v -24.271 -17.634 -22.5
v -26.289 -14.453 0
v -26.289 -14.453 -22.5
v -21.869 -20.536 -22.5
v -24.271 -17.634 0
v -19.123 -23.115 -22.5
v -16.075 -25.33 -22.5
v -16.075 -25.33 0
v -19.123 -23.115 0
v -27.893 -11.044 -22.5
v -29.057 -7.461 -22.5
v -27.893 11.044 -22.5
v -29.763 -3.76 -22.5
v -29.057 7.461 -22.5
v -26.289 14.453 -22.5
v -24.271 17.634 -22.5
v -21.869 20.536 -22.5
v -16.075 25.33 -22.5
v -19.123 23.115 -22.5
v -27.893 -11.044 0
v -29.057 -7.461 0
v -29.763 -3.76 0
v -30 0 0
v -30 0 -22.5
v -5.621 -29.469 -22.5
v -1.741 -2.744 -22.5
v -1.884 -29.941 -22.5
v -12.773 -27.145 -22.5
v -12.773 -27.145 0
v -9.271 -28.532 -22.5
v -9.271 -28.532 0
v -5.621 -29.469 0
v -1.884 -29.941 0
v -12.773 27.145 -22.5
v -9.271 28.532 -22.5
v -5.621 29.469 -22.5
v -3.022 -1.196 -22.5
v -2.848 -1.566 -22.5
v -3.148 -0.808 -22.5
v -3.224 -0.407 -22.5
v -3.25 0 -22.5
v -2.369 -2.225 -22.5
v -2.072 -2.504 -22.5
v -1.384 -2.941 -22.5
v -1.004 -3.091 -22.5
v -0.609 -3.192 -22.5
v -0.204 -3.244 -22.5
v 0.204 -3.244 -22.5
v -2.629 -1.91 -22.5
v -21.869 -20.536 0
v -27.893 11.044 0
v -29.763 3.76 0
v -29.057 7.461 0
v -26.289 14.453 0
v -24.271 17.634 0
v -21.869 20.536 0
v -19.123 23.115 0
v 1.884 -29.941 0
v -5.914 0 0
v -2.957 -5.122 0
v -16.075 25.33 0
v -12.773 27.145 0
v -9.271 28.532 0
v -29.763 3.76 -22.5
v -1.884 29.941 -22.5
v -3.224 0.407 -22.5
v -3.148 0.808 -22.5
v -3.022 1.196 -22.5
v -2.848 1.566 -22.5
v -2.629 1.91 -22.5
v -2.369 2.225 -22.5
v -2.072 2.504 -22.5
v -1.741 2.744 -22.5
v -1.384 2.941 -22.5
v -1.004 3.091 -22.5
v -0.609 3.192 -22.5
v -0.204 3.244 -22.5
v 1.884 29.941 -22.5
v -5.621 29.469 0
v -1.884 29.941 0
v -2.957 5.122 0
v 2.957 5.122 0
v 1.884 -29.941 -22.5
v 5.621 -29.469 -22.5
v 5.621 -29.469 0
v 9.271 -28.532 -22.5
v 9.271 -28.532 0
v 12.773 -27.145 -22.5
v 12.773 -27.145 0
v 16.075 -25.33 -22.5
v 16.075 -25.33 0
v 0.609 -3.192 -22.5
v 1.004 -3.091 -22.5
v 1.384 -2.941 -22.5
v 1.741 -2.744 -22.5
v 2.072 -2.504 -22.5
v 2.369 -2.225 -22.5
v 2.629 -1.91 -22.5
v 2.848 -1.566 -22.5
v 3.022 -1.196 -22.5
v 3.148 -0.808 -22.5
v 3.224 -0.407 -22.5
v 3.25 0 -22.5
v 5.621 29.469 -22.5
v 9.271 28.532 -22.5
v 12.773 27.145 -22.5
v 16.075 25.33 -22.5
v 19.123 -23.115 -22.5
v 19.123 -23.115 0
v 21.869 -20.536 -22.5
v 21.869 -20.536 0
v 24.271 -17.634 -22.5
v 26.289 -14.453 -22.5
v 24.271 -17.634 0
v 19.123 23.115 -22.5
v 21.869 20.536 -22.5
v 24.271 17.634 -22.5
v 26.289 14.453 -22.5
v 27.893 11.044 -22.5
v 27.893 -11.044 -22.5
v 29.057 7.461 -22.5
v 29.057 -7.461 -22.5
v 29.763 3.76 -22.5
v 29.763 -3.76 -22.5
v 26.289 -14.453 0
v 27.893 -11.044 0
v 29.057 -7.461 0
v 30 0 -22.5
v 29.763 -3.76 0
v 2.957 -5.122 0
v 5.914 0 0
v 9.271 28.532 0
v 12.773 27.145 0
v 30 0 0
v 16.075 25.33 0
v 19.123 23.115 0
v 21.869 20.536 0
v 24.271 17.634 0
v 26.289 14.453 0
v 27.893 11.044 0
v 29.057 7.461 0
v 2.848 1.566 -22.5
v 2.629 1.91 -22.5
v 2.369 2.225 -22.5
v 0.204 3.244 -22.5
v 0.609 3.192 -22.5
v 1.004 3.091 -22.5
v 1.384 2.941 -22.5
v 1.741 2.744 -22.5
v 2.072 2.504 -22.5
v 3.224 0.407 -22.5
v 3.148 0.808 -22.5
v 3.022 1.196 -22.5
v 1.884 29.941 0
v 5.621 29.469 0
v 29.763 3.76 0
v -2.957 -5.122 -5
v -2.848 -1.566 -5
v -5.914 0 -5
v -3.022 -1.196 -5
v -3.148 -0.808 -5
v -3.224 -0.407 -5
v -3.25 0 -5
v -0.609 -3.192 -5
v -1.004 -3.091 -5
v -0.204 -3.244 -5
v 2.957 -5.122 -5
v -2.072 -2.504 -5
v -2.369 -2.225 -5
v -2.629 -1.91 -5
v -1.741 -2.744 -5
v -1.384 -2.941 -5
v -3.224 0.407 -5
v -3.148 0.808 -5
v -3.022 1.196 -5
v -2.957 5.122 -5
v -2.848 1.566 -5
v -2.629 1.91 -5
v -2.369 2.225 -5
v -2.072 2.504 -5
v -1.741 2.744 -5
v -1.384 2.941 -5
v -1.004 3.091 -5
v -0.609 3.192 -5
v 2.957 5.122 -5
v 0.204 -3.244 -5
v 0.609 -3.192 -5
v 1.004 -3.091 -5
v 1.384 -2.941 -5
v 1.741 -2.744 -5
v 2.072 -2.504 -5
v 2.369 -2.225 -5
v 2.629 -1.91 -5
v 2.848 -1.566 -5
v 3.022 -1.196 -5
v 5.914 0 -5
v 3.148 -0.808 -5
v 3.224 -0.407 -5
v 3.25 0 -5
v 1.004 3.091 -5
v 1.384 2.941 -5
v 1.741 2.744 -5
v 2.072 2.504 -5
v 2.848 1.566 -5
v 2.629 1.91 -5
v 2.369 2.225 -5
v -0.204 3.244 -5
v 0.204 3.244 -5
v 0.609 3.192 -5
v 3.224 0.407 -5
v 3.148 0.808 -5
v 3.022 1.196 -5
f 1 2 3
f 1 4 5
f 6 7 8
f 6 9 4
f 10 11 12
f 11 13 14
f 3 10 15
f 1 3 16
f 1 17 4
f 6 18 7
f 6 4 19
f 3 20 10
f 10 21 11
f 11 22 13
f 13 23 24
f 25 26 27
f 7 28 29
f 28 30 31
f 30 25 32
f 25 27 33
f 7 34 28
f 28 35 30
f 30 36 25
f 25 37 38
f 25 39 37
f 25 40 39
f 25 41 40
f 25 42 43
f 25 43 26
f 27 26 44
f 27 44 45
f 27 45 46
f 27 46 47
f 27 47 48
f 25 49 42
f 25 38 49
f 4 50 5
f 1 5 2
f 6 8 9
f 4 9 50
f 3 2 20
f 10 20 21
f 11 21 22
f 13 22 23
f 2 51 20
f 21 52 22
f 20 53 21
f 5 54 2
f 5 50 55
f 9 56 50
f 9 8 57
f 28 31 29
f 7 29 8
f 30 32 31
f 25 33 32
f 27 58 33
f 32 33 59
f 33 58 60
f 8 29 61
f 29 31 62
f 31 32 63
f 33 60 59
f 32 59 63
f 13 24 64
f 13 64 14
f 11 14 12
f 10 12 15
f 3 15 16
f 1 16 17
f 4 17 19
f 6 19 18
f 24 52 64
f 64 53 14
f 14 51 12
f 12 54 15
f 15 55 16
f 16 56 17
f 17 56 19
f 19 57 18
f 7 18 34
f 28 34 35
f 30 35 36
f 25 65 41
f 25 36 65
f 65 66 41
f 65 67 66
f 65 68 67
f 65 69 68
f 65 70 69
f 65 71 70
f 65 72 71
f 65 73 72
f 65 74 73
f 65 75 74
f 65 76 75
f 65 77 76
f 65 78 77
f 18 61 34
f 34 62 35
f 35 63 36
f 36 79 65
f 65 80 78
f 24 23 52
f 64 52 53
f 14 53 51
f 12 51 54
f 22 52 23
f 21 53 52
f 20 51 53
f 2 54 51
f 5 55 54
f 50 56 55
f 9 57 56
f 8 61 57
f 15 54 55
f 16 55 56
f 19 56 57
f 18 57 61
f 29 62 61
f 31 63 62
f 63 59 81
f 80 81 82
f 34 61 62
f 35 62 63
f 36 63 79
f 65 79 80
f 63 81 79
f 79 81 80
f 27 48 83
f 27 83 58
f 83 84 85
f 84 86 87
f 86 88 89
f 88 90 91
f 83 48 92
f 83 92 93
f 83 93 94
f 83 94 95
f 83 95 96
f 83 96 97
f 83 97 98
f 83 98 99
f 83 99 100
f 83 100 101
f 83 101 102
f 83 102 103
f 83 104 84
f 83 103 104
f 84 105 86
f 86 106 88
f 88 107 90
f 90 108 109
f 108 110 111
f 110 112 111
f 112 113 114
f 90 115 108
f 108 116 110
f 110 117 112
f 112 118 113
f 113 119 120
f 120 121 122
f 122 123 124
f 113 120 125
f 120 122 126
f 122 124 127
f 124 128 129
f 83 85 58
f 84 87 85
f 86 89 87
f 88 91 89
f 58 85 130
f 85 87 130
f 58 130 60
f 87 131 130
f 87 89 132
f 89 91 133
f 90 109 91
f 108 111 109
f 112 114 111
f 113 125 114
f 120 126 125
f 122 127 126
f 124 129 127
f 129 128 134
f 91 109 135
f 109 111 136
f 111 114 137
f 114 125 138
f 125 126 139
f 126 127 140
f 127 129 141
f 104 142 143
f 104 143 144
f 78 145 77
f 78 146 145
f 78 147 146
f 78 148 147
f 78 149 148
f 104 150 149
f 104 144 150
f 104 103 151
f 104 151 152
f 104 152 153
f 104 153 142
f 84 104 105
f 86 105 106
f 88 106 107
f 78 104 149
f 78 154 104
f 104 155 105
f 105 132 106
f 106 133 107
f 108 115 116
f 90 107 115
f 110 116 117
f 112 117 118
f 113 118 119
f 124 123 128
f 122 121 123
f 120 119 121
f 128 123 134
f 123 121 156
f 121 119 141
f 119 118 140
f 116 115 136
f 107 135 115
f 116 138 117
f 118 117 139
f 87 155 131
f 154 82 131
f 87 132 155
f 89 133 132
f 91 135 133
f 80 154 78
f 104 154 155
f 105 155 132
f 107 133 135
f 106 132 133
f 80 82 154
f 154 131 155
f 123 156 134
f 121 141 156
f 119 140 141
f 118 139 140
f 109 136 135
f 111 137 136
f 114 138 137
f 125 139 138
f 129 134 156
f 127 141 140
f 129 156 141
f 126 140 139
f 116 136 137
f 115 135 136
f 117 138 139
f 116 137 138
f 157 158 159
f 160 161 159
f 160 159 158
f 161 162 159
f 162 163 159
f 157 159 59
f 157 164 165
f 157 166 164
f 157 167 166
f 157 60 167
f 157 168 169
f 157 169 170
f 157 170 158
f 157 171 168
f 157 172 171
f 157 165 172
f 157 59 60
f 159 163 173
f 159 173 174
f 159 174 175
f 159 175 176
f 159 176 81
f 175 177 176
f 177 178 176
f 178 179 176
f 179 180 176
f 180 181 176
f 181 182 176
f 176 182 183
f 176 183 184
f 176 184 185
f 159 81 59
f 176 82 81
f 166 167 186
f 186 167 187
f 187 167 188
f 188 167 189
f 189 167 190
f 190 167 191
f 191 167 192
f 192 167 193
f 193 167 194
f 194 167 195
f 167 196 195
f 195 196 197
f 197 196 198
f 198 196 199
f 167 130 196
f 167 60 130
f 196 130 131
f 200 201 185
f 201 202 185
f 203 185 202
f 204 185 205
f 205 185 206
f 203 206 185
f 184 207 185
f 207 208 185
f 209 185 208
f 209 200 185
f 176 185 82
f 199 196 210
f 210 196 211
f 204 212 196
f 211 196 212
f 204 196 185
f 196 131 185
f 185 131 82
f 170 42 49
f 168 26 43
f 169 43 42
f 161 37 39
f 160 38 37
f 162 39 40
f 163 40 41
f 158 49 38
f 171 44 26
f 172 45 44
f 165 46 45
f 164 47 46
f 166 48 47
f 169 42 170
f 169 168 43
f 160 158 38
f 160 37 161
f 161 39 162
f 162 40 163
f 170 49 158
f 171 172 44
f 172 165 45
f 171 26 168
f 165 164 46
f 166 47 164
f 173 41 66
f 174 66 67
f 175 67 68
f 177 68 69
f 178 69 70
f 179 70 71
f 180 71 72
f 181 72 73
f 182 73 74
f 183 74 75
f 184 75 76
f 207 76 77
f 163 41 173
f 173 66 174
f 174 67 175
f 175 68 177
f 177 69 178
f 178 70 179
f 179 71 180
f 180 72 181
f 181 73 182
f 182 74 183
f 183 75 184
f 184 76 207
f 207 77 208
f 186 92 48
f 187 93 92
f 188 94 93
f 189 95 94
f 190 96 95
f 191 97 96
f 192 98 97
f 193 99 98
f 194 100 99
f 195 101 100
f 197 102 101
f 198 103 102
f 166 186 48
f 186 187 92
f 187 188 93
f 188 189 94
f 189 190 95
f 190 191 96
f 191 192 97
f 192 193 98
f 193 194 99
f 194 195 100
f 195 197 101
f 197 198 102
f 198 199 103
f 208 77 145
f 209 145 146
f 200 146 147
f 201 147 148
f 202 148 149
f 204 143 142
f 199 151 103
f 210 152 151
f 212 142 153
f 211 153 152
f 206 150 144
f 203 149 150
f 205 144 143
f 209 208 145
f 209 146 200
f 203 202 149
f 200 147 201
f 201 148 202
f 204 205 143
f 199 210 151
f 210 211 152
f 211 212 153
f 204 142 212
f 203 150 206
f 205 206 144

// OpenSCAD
$fn = 50;


difference() {
	union() {
		translate(v = [0, 0, -22.5000000000]) {
			cylinder(h = 22.5000000000, r = 30.0000000000);
		}
		#translate(v = [0, 0, -24.0000000000]) {
			cylinder(h = 24, r = 2.8750000000);
		}
	}
	union() {
		translate(v = [0, 0, 0]) {
			rotate(a = [0, 0, 0]) {
				difference() {
					union() {
						translate(v = [0, 0, -5]) {
							linear_extrude(height = 5) {
								polygon(points = [[5.9142500000, 0.0000000000], [2.9571250000, 5.1218907443], [-2.9571250000, 5.1218907443], [-5.9142500000, 0.0000000000], [-2.9571250000, -5.1218907443], [2.9571250000, -5.1218907443]]);
							}
						}
					}
					union();
				}
			}
		}
		#translate(v = [0, 0, -100.0000000000]) {
			cylinder(h = 200, r = 3.2500000000);
		}
	}
}
